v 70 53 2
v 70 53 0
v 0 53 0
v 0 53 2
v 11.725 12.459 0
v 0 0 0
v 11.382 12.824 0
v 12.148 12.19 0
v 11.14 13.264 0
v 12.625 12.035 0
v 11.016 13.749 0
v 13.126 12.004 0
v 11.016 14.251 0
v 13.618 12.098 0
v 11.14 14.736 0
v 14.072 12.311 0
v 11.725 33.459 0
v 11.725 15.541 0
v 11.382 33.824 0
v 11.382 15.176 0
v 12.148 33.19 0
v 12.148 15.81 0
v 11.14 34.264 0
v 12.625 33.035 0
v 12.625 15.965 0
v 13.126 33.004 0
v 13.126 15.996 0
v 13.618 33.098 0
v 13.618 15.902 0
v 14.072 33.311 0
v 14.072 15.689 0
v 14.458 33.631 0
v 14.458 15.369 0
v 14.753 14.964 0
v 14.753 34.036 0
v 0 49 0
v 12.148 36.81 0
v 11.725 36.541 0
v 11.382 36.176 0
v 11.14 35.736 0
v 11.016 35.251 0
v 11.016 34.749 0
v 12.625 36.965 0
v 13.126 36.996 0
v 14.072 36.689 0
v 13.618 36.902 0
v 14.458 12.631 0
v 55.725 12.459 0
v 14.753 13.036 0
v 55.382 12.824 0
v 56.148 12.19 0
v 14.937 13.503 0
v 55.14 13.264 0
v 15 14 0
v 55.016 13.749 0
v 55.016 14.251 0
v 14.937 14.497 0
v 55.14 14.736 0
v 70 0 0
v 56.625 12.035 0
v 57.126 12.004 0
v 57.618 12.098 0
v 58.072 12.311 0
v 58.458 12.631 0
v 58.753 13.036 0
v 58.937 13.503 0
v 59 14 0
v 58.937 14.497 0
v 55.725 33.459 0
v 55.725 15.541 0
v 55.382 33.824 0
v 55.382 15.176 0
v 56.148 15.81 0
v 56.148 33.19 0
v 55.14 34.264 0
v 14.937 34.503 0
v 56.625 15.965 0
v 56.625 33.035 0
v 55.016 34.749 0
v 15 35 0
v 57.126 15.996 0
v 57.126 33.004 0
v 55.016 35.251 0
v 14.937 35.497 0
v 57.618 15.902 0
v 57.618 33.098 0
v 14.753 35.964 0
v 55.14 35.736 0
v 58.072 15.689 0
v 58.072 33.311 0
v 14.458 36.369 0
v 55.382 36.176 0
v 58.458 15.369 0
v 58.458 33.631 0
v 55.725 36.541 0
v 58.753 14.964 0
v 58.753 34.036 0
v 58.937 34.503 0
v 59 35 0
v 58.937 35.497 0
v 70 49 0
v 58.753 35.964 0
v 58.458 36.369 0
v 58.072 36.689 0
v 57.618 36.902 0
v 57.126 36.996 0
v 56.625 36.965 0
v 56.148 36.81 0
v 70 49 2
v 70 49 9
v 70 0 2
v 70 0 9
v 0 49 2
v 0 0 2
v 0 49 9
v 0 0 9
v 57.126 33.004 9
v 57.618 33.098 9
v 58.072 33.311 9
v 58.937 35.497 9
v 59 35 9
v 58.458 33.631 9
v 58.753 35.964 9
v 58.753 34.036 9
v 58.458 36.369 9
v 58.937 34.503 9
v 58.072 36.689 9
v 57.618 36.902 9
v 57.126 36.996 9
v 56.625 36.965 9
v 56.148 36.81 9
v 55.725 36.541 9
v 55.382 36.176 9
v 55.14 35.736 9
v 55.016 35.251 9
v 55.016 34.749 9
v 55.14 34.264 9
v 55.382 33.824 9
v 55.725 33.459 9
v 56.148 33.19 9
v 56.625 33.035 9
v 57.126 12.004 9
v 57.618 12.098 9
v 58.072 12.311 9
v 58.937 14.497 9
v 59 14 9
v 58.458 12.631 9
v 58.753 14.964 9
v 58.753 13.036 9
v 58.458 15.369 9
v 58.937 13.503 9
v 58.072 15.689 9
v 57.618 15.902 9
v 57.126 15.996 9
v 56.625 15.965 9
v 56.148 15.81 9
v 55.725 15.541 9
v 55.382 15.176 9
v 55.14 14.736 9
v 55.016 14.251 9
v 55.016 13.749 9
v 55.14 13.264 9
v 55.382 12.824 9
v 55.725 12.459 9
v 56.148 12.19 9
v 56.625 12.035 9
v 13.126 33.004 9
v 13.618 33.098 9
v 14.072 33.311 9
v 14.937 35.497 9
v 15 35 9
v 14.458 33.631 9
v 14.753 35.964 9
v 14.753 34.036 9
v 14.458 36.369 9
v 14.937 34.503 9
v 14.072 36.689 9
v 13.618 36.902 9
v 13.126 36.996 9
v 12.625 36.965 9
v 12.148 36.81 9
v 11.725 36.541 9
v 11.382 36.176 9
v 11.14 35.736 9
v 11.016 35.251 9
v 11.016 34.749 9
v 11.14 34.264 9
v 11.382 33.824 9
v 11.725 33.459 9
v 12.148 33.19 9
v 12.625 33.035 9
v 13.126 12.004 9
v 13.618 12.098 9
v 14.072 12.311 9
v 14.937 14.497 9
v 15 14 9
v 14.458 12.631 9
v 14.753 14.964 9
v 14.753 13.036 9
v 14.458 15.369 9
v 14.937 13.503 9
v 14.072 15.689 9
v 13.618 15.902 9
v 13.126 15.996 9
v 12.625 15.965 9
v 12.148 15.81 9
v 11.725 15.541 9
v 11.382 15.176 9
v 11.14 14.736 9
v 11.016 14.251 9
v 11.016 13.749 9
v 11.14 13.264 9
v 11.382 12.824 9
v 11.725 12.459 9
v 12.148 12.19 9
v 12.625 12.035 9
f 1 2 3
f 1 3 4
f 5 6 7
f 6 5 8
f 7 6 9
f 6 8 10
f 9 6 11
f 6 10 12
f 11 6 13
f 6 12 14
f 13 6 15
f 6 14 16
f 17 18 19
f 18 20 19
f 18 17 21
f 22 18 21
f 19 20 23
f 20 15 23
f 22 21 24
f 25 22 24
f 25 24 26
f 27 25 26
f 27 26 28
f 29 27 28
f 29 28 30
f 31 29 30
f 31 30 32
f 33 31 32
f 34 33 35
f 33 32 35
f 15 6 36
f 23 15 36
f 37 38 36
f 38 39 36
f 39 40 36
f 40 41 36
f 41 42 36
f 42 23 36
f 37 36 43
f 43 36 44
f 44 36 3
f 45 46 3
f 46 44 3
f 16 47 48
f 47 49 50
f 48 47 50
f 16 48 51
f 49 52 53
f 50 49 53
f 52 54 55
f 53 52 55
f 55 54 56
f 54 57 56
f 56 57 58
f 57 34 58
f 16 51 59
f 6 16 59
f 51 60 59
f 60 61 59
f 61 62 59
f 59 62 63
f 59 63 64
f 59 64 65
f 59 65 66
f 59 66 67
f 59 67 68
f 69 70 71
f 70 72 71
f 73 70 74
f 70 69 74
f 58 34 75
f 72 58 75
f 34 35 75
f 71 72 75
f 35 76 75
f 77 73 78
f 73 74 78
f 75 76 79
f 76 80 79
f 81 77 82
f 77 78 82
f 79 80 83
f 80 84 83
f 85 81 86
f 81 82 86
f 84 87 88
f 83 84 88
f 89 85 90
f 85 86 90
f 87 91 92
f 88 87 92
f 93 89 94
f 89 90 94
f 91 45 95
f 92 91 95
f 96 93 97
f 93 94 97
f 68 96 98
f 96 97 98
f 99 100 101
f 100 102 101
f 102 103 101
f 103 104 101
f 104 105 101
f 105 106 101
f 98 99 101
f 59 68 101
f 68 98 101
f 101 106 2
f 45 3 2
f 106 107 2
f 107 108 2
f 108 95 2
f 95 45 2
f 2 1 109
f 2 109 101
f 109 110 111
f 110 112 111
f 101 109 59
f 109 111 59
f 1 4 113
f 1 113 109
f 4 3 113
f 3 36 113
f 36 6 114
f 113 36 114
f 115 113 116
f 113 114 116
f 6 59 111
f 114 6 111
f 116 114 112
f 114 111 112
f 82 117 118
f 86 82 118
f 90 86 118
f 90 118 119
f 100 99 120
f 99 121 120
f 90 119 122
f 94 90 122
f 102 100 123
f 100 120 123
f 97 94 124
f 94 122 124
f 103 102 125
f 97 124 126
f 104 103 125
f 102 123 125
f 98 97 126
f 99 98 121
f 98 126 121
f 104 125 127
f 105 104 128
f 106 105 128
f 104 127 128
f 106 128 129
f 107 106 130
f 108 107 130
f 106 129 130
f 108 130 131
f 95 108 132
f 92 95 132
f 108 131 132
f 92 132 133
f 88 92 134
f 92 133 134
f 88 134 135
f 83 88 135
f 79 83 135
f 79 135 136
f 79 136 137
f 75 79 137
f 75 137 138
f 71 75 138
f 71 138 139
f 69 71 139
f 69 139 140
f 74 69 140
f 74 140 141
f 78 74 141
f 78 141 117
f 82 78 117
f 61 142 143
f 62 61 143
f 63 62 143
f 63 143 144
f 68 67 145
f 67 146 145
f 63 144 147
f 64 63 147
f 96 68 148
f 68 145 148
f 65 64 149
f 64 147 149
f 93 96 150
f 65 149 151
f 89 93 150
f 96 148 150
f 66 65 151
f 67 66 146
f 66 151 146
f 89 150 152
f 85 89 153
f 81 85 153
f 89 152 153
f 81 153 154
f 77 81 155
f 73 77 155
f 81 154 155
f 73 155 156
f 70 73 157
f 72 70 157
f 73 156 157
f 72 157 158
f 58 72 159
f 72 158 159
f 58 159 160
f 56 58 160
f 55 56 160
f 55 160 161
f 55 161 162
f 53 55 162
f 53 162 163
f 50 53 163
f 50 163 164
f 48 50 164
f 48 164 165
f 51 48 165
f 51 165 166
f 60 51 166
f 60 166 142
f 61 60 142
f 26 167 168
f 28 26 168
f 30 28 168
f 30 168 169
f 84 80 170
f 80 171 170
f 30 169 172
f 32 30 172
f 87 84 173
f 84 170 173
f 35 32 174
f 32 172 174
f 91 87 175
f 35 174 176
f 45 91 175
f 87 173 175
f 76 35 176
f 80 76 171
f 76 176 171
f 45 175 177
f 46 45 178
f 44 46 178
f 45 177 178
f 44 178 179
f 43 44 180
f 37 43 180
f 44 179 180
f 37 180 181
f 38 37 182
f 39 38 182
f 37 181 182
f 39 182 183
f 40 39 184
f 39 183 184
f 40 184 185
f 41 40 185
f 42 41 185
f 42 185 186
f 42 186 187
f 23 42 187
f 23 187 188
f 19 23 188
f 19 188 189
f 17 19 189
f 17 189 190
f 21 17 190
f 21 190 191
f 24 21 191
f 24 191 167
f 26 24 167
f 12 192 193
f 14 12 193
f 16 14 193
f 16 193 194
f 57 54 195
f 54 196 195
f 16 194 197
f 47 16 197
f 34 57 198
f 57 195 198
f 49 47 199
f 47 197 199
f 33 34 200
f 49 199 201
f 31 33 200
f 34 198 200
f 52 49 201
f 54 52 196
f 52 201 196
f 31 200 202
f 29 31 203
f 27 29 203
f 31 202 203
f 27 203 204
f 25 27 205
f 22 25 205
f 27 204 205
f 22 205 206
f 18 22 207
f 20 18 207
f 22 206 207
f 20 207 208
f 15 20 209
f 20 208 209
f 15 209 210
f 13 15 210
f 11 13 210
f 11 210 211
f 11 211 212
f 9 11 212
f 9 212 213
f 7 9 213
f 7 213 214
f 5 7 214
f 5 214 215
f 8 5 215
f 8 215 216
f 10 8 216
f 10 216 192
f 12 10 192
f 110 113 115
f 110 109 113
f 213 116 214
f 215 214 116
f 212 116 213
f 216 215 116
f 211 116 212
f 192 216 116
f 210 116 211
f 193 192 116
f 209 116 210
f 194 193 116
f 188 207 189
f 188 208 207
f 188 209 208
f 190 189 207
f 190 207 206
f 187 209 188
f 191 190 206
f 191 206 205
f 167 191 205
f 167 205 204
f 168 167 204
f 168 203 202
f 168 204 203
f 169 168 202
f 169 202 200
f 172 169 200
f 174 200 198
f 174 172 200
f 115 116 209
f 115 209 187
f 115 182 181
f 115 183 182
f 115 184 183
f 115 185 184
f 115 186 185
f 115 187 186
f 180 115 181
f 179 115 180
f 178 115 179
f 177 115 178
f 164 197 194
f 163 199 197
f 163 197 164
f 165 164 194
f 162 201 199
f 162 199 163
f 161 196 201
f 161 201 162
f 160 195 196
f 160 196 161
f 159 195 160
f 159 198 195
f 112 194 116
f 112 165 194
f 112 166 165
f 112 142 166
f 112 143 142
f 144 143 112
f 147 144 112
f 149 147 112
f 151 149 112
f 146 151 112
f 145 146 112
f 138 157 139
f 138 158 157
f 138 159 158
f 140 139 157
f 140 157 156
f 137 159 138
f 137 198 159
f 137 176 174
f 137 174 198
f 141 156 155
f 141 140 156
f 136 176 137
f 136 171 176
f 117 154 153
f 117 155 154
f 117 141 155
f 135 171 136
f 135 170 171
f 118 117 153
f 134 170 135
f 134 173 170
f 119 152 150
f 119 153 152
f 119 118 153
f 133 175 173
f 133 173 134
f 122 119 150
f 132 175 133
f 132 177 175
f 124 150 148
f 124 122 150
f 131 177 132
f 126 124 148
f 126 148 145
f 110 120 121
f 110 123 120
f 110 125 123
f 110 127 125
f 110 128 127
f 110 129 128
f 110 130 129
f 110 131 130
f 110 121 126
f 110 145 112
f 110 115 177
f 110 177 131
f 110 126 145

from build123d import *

# Parameters (mm, degrees)
BOX001_W     = 70
BOX001_H     = 49
BOX001_DEPTH = 9
BOX_W        = 70
BOX_H        = 53
BOX_DEPTH    = 2
SKETCH_R     = 2
POCKET_DEPTH = 9.001


with BuildPart() as cube001:
    # Box001 → Box001 (new body)
    with BuildSketch(Plane.XY):
        with Locations((35, 24.5)):
            Rectangle(BOX001_W, BOX001_H)
    extrude(amount=BOX001_DEPTH)


with BuildPart() as pocket:
    # Box → Box (new body)
    with BuildSketch(Plane.XY):
        with Locations((35, 26.5)):
            Rectangle(BOX_W, BOX_H)
    extrude(amount=BOX_DEPTH)

    # Fusion: union Cube001
    add(cube001.part)

    # Sketch → Pocket (cut, through all)
    with BuildSketch(Plane.XY.offset(9)):
        with Locations((13, 14)):
            Circle(SKETCH_R)
        with Locations((13, 35)):
            Circle(SKETCH_R)
        with Locations((57, 35)):
            Circle(SKETCH_R)
        with Locations((57, 14)):
            Circle(SKETCH_R)
    extrude(amount=-POCKET_DEPTH, mode=Mode.SUBTRACT)


solid = pocket.part
